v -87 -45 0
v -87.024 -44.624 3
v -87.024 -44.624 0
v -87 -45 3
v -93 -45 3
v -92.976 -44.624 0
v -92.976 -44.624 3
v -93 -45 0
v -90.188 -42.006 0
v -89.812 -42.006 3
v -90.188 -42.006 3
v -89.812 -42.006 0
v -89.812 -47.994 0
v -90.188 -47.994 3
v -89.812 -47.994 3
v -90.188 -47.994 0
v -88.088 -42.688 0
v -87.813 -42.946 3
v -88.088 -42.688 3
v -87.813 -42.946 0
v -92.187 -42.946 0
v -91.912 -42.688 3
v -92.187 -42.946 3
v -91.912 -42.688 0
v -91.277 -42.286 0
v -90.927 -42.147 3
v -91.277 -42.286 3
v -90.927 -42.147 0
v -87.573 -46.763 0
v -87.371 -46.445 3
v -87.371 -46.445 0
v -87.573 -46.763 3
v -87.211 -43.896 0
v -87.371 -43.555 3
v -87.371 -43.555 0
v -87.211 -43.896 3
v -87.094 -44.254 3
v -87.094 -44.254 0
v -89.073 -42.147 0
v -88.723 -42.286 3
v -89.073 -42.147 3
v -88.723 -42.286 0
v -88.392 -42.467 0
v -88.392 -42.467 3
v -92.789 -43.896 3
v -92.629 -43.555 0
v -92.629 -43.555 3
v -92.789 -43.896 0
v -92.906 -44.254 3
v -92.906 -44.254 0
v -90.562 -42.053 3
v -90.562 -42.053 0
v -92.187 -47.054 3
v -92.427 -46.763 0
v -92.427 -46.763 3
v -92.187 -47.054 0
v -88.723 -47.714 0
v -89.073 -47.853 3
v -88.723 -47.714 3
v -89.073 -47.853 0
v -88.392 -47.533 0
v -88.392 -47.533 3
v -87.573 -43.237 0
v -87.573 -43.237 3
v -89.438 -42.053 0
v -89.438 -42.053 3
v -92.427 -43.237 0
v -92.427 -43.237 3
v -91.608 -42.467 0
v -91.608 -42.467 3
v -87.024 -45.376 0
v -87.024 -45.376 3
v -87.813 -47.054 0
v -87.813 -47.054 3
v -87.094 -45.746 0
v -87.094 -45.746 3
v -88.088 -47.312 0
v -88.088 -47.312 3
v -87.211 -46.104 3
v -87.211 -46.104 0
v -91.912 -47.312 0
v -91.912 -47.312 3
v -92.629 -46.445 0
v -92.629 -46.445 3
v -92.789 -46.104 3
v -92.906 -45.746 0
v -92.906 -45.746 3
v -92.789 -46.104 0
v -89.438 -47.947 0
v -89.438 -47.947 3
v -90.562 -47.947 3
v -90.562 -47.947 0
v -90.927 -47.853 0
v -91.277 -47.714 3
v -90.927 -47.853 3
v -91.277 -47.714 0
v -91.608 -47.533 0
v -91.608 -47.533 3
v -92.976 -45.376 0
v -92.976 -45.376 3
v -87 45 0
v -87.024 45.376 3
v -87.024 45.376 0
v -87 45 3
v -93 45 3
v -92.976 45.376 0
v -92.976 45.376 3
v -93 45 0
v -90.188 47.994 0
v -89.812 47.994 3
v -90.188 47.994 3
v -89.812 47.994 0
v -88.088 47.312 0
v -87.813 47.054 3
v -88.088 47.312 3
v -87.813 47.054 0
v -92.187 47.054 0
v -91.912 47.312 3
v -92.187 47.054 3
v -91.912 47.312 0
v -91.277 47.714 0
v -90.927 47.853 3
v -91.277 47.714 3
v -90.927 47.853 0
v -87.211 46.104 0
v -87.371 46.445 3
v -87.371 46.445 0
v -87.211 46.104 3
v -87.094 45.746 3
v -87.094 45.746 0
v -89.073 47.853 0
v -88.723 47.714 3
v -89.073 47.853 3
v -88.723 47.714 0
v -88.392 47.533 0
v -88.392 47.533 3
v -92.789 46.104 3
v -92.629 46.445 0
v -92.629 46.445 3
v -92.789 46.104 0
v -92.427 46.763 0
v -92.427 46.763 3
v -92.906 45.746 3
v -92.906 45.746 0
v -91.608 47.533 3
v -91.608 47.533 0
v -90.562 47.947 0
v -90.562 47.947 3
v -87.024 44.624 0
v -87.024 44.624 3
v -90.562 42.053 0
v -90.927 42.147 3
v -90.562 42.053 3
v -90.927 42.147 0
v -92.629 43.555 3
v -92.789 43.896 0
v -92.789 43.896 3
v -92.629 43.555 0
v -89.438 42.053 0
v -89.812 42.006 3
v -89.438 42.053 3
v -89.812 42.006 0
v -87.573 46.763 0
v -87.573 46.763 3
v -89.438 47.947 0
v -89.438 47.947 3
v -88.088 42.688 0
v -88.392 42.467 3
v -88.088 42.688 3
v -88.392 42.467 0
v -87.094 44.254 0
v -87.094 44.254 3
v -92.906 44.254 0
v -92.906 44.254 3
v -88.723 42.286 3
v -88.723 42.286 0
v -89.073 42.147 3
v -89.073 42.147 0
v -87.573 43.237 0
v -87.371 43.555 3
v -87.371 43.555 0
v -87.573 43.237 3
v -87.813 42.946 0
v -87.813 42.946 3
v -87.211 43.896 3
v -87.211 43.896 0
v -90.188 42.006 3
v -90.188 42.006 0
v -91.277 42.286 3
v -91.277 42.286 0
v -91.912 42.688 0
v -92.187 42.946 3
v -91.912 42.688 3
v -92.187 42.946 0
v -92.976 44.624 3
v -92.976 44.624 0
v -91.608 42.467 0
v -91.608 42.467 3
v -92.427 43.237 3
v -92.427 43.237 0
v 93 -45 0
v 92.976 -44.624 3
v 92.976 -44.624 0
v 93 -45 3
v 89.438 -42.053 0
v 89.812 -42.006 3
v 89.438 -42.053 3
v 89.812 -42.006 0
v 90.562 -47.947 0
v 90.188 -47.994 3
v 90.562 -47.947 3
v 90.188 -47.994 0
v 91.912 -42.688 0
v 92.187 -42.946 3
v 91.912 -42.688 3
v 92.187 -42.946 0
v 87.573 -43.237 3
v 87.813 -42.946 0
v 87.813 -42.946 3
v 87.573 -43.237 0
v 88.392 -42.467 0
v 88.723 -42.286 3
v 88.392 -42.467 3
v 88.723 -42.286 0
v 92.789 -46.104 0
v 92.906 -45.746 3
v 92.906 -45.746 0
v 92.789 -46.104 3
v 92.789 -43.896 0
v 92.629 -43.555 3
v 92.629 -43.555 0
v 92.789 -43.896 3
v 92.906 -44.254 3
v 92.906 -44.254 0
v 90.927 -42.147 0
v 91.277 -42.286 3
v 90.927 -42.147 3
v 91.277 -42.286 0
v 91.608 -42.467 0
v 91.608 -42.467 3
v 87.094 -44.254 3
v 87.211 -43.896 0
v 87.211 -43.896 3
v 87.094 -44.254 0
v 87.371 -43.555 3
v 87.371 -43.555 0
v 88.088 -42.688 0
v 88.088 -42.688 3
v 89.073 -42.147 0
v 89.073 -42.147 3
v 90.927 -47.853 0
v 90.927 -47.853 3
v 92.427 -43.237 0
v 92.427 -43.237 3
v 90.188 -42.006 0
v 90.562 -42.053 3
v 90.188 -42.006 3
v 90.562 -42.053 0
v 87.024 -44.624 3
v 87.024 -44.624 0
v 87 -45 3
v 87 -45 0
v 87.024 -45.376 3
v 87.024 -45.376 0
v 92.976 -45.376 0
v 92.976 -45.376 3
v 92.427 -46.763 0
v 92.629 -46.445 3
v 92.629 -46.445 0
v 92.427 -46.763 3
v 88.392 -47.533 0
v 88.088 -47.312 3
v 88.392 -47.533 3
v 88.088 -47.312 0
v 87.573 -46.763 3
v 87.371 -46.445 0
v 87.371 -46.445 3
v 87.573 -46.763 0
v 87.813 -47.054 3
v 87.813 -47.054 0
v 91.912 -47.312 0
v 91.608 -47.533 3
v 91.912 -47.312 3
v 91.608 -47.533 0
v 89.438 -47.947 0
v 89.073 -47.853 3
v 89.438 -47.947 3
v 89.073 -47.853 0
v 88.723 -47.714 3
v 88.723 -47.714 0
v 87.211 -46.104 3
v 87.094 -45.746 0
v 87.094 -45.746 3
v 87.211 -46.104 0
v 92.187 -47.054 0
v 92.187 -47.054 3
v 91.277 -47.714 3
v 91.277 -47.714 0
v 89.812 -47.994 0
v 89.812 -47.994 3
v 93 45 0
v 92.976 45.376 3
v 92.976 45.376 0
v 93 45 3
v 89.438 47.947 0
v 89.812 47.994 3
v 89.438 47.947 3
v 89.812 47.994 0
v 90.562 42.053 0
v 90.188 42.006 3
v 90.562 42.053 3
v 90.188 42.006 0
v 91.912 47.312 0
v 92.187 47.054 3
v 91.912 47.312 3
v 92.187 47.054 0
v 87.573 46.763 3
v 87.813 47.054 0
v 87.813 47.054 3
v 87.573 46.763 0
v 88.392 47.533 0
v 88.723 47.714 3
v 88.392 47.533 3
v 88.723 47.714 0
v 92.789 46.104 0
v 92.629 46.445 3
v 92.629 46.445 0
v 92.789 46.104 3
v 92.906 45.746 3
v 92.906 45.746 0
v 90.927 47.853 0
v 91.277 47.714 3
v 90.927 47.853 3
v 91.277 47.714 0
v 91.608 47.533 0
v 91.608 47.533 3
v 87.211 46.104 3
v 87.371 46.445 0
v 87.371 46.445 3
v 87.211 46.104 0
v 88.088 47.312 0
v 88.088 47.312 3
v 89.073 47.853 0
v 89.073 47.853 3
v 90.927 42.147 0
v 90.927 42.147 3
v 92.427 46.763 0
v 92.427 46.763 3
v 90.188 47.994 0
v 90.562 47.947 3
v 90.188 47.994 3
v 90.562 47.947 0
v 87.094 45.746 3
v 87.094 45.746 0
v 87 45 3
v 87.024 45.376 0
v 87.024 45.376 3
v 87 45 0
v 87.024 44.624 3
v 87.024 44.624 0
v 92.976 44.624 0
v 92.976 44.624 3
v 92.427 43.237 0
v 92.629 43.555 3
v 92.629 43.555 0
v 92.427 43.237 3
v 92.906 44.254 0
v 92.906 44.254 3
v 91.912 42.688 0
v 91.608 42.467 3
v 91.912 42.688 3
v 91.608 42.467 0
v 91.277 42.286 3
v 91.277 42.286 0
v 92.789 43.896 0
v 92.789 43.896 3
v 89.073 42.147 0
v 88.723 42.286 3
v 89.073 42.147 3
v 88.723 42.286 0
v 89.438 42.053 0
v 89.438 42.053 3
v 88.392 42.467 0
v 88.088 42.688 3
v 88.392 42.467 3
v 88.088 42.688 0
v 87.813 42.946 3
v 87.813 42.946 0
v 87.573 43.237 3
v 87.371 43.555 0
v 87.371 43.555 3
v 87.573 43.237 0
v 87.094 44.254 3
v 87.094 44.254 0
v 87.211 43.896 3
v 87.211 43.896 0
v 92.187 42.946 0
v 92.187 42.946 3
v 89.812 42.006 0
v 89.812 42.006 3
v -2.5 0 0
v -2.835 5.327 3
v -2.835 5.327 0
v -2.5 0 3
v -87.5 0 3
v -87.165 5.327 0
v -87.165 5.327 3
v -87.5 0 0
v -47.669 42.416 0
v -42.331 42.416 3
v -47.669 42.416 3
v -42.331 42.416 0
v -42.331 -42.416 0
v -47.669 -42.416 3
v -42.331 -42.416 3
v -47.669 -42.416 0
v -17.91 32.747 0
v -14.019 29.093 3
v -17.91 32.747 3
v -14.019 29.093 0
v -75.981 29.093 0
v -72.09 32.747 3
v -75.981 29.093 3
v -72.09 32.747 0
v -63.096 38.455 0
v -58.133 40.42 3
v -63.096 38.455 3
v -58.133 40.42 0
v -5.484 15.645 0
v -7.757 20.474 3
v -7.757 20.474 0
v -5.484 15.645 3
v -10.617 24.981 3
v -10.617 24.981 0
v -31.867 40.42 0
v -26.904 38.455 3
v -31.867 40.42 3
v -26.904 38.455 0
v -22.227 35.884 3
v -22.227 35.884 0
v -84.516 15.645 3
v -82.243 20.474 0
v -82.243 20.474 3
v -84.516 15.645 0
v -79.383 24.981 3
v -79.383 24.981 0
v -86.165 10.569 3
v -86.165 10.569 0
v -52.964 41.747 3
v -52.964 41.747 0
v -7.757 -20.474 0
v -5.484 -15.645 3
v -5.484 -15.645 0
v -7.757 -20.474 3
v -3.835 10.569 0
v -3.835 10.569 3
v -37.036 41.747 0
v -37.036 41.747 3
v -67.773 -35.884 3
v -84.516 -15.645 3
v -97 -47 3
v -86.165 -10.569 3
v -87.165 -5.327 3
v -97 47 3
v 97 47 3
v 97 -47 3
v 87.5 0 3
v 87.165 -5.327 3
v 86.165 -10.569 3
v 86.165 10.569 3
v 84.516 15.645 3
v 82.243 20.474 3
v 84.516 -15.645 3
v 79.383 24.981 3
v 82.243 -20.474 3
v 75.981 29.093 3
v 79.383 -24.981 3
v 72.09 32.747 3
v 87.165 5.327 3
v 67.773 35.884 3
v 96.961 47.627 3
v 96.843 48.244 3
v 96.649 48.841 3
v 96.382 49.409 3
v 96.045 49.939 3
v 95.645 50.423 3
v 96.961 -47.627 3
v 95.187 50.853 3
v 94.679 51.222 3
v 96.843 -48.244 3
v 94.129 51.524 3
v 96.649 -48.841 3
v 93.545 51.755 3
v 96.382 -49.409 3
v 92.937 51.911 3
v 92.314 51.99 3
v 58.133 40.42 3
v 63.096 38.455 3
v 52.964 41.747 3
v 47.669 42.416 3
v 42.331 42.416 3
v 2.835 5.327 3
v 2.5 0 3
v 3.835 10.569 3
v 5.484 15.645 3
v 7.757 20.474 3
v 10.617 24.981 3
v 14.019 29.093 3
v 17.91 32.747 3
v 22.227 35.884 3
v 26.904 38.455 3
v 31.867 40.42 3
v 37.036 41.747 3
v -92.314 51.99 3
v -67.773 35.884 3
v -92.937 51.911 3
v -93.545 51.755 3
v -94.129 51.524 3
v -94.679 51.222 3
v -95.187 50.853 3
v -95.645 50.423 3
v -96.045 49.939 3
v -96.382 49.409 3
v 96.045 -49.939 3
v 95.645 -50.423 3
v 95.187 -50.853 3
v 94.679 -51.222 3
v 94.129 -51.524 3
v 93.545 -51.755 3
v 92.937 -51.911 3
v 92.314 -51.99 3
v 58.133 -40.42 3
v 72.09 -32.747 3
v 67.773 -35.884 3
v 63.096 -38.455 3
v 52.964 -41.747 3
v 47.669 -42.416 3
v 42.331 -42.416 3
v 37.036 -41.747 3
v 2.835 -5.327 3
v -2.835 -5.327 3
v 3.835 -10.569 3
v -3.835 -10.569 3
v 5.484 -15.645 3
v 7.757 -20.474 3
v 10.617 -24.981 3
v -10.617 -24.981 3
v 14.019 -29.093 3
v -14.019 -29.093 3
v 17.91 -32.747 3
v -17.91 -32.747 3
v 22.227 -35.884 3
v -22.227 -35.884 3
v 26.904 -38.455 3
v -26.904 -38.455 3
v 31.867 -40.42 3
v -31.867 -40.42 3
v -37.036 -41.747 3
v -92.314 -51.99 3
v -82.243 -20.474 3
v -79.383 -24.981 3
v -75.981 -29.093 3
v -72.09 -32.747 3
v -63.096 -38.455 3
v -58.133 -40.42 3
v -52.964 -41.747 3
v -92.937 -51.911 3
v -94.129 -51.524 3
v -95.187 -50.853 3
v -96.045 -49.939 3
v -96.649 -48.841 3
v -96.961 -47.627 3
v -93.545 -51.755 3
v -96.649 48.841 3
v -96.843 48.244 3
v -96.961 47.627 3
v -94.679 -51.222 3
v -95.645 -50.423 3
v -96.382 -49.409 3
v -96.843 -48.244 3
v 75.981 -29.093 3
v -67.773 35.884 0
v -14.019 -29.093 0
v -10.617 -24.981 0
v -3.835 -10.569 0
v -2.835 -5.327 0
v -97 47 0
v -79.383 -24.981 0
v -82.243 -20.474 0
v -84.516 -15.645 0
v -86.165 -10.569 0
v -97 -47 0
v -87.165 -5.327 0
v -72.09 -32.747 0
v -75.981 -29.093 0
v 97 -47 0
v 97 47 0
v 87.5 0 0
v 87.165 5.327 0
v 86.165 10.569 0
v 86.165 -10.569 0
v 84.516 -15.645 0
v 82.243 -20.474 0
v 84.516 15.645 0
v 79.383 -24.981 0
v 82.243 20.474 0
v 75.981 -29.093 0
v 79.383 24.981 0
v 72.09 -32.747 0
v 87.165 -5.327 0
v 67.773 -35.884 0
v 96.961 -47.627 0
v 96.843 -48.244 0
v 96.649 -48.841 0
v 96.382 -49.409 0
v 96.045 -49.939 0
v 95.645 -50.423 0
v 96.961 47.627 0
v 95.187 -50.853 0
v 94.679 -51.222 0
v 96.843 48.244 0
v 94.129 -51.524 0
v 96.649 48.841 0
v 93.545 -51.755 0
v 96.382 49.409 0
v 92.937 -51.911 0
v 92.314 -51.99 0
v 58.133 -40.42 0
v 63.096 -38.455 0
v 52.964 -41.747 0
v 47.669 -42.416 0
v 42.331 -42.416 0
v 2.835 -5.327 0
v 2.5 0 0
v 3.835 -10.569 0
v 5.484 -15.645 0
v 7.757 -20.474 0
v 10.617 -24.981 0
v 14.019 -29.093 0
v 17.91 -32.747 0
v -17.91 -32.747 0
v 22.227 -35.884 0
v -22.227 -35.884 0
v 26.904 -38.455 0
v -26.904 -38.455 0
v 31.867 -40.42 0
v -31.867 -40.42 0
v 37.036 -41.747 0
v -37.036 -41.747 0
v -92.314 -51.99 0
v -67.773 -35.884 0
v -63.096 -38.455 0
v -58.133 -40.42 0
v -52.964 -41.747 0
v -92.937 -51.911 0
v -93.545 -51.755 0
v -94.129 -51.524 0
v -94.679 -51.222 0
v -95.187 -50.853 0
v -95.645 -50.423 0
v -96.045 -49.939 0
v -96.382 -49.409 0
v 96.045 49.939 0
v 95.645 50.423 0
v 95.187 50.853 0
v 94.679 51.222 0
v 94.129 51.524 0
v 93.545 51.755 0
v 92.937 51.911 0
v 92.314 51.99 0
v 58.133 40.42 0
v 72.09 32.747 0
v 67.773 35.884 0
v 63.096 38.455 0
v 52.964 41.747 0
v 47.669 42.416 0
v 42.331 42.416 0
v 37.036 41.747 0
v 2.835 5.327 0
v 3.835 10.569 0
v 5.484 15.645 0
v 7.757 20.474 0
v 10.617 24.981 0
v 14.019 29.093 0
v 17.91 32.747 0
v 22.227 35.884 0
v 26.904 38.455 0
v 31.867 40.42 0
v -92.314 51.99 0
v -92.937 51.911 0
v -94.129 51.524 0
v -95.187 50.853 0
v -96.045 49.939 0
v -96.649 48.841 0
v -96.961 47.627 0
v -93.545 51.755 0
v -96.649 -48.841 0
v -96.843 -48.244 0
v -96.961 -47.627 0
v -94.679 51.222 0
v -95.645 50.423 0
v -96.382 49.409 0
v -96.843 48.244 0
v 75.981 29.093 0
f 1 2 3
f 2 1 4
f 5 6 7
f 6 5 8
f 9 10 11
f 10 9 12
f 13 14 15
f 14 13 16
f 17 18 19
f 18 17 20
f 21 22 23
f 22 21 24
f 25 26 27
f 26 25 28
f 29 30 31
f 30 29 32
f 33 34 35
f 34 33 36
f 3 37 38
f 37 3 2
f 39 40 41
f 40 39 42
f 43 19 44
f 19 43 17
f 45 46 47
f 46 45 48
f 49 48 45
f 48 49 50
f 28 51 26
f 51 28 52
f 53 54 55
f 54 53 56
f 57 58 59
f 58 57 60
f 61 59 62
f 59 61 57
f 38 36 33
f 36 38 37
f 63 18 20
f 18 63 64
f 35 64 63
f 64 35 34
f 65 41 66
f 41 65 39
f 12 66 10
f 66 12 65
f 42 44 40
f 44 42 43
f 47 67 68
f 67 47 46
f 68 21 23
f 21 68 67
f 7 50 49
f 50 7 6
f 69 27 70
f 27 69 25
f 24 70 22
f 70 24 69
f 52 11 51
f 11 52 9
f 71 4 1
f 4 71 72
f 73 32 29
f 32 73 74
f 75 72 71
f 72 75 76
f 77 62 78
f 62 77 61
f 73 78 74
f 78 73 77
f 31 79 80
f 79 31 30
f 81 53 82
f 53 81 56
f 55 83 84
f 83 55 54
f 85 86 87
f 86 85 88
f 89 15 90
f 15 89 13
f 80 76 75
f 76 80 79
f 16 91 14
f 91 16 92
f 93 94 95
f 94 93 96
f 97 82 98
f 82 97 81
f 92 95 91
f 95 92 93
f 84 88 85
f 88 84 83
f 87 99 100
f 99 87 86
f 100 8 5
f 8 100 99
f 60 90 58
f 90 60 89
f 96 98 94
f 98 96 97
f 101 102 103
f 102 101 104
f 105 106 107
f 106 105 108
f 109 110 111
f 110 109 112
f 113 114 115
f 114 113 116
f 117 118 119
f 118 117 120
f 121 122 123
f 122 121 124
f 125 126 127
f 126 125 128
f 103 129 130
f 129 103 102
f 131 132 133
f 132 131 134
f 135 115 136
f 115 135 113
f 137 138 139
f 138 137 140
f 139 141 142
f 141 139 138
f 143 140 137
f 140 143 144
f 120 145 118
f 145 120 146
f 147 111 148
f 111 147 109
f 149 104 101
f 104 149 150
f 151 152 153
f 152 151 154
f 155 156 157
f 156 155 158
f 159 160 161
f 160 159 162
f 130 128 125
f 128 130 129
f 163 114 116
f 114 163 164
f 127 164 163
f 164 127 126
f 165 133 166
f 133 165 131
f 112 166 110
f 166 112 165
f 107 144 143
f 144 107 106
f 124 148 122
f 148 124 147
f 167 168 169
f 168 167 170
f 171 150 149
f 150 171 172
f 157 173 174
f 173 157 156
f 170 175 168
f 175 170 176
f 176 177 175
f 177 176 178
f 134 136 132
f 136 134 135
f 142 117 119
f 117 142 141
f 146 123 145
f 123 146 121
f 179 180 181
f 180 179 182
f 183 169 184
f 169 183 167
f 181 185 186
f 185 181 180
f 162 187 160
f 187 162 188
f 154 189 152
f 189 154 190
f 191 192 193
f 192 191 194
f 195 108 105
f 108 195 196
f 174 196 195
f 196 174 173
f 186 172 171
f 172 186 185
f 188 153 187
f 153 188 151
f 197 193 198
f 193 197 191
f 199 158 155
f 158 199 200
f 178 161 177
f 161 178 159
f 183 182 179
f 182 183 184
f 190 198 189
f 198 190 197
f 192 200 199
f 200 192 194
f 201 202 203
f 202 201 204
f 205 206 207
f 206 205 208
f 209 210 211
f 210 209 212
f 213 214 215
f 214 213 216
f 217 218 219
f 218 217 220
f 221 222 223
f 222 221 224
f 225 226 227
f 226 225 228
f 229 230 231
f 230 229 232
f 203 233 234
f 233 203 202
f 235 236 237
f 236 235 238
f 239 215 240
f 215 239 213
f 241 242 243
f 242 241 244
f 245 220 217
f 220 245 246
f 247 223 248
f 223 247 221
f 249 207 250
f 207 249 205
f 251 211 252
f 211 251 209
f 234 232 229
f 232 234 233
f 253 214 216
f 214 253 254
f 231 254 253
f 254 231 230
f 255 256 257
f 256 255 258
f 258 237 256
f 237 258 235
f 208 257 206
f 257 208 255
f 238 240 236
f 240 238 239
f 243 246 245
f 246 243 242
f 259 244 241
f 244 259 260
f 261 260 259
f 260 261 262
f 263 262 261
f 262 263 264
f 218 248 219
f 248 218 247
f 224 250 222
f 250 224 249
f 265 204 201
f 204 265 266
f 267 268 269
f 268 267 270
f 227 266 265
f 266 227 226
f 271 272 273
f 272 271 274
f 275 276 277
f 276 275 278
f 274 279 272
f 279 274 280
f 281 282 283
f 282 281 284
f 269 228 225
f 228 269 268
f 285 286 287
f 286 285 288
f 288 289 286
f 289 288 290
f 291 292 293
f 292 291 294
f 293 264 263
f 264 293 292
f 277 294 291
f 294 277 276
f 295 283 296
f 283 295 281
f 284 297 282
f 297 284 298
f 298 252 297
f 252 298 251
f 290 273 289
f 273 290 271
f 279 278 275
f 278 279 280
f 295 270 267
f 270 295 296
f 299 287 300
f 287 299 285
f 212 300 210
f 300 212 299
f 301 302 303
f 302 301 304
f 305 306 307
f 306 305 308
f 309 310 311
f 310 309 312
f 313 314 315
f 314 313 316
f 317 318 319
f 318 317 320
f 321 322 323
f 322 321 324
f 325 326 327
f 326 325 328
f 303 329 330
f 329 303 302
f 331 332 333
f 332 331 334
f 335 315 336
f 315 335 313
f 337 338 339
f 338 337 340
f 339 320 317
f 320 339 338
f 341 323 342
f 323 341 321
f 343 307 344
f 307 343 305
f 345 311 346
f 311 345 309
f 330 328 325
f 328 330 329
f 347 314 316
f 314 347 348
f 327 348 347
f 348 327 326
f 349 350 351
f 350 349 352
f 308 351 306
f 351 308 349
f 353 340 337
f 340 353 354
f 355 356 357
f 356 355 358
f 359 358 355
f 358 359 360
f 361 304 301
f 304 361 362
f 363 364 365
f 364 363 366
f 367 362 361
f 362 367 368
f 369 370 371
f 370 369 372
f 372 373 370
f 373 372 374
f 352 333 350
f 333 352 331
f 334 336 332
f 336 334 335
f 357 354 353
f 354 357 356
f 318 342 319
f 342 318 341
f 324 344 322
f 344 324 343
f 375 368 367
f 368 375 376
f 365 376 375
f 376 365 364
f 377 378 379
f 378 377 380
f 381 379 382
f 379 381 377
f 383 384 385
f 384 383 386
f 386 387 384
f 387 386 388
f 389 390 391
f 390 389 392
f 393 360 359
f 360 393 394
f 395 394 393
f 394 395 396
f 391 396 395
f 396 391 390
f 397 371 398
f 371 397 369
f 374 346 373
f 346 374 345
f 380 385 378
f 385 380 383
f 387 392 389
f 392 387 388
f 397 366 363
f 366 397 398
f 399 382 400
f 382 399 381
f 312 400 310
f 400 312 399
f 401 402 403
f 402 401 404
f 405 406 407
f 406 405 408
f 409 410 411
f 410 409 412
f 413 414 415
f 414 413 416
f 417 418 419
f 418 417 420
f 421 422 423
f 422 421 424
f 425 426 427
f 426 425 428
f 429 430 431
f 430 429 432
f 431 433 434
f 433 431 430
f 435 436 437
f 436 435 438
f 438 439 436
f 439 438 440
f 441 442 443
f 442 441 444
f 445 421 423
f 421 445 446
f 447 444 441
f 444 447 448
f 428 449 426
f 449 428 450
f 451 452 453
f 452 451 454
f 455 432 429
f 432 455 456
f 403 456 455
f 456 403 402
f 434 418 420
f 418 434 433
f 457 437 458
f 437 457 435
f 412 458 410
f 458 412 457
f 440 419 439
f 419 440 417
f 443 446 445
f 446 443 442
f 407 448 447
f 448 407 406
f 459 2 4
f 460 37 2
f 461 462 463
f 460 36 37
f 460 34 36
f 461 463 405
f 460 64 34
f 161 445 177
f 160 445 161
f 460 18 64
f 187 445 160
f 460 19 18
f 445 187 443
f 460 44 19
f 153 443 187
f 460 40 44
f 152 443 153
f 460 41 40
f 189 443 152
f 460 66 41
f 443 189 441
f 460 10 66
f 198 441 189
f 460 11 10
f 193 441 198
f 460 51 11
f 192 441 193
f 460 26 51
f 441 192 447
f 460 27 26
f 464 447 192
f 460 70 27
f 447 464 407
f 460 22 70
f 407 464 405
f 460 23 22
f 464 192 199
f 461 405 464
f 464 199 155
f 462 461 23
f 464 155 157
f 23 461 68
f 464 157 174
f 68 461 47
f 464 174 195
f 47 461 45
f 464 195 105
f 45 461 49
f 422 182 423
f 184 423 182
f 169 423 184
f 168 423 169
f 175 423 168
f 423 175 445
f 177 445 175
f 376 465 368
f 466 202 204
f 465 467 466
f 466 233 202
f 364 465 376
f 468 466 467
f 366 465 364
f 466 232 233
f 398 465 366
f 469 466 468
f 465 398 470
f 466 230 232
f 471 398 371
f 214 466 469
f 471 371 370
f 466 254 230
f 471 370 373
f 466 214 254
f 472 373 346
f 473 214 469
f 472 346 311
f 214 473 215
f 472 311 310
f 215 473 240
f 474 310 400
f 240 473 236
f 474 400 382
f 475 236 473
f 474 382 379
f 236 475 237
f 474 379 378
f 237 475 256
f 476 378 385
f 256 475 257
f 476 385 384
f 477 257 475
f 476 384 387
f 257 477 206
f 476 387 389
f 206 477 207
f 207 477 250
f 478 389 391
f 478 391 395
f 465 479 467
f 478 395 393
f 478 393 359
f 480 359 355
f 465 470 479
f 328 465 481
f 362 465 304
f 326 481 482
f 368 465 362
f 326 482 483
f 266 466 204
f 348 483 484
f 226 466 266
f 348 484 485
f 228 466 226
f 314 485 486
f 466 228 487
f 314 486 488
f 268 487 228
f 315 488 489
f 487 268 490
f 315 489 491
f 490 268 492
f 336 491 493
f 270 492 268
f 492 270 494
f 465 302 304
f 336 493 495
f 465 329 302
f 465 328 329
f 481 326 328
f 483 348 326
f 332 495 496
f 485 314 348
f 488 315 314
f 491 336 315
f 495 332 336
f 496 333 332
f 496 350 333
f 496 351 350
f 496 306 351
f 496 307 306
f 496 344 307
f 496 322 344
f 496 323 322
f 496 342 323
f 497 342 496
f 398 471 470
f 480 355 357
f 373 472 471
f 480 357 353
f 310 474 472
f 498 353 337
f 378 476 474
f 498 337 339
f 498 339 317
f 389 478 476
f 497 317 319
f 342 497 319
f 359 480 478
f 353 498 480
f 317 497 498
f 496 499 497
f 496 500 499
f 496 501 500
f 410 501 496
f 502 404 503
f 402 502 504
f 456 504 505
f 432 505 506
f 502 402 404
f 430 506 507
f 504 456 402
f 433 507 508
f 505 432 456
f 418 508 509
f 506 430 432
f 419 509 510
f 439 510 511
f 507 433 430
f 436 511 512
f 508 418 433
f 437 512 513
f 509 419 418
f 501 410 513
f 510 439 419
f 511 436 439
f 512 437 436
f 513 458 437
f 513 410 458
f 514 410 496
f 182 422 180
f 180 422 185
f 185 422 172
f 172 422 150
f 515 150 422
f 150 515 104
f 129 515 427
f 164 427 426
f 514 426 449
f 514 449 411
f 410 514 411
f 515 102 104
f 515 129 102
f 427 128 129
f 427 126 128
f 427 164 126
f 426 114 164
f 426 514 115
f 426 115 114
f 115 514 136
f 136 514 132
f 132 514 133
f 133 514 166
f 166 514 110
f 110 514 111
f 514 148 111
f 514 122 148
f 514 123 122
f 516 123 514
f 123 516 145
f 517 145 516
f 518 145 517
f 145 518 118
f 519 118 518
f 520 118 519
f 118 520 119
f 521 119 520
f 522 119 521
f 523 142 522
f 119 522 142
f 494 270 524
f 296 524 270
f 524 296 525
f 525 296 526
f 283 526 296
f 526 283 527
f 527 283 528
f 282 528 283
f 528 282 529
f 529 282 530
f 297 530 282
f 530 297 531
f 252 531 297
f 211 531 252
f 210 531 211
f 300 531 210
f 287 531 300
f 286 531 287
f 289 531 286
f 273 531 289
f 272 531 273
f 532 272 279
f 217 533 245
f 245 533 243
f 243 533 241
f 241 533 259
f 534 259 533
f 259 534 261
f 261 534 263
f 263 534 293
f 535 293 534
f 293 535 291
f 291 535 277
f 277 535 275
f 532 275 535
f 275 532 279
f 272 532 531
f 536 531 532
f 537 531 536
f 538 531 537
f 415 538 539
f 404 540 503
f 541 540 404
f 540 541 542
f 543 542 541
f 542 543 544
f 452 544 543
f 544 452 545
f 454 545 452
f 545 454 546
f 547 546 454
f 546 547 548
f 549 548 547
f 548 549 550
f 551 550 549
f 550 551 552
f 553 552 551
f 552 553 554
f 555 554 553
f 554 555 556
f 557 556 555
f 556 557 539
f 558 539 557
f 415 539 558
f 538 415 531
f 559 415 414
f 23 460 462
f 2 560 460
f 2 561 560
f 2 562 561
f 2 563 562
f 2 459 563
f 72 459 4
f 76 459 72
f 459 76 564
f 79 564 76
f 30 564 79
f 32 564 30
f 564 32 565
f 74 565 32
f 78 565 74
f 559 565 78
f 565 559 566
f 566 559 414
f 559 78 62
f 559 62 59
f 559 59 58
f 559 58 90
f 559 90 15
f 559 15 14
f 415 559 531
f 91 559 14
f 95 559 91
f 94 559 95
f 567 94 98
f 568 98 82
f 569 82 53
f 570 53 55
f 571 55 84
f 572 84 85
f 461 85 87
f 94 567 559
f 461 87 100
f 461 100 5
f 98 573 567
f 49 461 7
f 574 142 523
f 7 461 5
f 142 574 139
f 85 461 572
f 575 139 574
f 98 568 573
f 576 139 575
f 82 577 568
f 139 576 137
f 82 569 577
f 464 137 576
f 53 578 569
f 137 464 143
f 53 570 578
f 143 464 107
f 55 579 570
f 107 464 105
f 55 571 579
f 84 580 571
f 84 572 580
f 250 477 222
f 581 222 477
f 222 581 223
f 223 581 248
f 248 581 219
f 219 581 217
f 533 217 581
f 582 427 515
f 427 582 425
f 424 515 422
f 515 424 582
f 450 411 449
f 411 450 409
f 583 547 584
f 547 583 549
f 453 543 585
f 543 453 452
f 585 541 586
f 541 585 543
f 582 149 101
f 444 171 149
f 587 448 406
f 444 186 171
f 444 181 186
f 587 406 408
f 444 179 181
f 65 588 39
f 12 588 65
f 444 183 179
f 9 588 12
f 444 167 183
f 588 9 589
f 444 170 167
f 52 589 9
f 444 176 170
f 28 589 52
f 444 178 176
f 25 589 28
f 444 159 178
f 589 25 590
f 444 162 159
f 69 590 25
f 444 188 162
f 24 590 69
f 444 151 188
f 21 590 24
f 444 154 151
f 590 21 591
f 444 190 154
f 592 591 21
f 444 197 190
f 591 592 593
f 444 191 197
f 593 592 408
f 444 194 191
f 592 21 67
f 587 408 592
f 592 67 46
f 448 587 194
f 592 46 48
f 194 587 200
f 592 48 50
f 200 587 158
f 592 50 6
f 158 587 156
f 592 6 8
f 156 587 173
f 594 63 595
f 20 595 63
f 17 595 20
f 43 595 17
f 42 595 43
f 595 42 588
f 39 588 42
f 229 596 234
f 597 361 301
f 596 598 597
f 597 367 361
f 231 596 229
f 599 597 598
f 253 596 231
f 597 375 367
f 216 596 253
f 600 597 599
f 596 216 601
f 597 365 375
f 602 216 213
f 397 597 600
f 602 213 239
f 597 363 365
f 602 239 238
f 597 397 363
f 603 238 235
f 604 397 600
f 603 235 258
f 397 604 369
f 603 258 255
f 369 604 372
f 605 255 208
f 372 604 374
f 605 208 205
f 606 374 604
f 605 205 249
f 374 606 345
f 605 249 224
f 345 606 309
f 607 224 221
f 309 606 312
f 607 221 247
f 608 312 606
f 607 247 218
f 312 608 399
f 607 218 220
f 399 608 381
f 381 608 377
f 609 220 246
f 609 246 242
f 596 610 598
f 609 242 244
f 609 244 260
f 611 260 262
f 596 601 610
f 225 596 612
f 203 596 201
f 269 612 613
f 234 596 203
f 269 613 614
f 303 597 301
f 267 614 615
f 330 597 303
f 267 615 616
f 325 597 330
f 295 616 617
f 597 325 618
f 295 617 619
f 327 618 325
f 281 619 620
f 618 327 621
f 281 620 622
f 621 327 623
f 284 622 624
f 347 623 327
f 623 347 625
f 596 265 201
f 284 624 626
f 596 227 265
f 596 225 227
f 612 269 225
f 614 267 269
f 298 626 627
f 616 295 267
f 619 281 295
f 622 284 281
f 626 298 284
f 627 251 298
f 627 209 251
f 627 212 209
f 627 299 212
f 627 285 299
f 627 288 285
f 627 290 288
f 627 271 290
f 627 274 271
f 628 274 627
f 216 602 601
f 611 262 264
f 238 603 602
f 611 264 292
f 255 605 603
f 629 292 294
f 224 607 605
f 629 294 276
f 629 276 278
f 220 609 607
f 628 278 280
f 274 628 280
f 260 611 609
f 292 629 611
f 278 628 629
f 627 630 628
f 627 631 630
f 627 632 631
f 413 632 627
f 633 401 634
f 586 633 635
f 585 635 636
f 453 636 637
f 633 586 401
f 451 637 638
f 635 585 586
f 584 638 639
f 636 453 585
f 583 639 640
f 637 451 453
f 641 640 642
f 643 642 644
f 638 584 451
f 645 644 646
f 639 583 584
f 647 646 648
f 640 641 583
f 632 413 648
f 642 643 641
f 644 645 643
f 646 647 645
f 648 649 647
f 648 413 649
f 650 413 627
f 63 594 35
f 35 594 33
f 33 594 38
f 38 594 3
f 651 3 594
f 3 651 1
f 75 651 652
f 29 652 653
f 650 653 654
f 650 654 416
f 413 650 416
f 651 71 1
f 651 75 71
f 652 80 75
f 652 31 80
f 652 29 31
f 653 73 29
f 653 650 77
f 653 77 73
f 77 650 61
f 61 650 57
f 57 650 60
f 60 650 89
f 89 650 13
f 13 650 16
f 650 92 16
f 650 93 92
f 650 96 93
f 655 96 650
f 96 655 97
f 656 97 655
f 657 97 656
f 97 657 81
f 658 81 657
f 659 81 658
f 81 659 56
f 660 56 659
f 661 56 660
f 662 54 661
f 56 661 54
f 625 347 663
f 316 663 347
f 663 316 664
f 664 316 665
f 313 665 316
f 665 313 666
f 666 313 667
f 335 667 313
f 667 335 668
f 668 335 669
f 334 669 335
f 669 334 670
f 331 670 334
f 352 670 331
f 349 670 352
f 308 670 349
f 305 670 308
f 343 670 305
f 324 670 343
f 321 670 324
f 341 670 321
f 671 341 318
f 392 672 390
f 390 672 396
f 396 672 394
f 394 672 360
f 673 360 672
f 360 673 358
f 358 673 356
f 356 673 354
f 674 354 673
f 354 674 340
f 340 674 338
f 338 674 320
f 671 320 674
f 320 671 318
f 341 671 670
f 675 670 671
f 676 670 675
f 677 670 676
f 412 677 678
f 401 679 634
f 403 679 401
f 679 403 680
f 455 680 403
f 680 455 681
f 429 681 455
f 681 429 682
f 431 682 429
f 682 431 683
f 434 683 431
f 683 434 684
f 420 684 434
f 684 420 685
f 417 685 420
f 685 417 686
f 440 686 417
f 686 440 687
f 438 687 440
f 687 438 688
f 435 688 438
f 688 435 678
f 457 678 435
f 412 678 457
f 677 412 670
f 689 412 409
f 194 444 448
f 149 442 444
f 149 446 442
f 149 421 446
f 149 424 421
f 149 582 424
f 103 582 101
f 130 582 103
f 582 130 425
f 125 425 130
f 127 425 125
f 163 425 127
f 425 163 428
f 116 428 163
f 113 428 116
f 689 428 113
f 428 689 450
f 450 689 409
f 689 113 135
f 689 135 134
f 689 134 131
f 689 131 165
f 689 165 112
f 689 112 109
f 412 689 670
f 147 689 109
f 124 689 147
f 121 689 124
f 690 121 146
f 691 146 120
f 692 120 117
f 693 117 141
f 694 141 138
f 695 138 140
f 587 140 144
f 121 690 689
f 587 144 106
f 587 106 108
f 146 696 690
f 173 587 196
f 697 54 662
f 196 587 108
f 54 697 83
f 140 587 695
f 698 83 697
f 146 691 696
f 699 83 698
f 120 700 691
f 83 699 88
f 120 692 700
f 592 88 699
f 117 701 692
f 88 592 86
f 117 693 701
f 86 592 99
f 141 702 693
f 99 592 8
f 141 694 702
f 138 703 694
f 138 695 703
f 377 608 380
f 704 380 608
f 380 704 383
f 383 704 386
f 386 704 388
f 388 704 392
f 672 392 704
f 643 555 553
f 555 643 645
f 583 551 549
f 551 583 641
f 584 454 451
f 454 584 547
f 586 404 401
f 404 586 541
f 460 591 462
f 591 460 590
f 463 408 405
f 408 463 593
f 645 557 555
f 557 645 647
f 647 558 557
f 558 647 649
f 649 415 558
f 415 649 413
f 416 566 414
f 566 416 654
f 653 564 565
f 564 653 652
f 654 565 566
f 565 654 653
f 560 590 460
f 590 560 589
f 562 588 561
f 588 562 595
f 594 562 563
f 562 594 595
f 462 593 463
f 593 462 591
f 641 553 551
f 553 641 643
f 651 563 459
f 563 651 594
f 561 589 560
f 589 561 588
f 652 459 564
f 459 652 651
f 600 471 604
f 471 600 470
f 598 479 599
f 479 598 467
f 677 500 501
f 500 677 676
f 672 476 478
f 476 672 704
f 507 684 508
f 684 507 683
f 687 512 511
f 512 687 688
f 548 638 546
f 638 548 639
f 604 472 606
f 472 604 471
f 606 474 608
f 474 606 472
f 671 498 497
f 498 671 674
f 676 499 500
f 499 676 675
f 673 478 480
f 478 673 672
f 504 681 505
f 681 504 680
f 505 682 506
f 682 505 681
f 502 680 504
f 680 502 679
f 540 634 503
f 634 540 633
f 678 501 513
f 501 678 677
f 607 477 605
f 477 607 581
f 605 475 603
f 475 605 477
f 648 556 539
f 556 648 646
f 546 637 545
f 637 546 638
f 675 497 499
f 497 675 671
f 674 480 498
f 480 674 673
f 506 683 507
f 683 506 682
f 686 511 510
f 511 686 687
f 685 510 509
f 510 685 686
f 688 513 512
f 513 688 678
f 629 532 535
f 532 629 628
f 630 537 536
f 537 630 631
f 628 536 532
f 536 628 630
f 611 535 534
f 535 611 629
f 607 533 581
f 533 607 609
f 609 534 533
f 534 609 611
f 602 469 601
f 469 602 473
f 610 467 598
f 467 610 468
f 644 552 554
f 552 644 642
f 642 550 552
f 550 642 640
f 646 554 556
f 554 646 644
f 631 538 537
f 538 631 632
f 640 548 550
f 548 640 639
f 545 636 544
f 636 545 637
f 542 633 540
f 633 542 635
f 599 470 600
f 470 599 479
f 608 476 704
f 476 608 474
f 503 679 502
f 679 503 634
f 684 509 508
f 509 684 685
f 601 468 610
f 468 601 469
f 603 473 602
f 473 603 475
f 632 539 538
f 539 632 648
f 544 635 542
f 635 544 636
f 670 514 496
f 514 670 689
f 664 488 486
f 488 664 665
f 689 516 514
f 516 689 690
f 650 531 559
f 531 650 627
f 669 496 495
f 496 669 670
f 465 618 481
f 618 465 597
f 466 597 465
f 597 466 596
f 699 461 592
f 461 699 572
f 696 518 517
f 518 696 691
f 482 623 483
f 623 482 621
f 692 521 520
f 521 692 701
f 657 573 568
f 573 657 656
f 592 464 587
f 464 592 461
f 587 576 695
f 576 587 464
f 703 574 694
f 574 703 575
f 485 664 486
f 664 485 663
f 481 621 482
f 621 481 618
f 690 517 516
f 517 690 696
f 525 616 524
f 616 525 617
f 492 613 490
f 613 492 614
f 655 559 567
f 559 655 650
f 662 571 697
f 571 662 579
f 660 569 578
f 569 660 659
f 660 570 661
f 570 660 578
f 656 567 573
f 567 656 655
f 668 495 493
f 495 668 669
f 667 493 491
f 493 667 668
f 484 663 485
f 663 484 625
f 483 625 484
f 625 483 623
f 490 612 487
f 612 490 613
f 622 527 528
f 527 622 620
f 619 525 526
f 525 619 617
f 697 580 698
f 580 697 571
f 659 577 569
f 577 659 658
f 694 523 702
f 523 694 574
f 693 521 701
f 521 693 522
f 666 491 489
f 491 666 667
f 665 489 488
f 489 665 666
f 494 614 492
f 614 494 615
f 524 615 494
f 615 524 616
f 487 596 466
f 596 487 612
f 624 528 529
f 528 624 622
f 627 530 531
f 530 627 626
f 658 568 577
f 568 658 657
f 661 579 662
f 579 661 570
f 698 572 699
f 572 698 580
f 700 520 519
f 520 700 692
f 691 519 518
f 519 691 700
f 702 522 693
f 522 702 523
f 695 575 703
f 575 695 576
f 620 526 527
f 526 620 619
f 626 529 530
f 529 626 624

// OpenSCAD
$fn = 50;


difference() {
	union() {
		hull() {
			translate(v = [-92.0000000000, 47.0000000000, 0]) {
				cylinder(h = 3, r = 5);
			}
			translate(v = [92.0000000000, 47.0000000000, 0]) {
				cylinder(h = 3, r = 5);
			}
			translate(v = [-92.0000000000, -47.0000000000, 0]) {
				cylinder(h = 3, r = 5);
			}
			translate(v = [92.0000000000, -47.0000000000, 0]) {
				cylinder(h = 3, r = 5);
			}
		}
	}
	union() {
		#translate(v = [-90.0000000000, -45.0000000000, -100.0000000000]) {
			cylinder(h = 200, r = 3.0000000000);
		}
		#translate(v = [-90.0000000000, 45.0000000000, -100.0000000000]) {
			cylinder(h = 200, r = 3.0000000000);
		}
		#translate(v = [90.0000000000, -45.0000000000, -100.0000000000]) {
			cylinder(h = 200, r = 3.0000000000);
		}
		#translate(v = [90.0000000000, 45.0000000000, -100.0000000000]) {
			cylinder(h = 200, r = 3.0000000000);
		}
		#translate(v = [-45.0000000000, 0, 0]) {
			cylinder(h = 3, r = 42.5000000000);
		}
		#translate(v = [45.0000000000, 0, 0]) {
			cylinder(h = 3, r = 42.5000000000);
		}
	}
}
